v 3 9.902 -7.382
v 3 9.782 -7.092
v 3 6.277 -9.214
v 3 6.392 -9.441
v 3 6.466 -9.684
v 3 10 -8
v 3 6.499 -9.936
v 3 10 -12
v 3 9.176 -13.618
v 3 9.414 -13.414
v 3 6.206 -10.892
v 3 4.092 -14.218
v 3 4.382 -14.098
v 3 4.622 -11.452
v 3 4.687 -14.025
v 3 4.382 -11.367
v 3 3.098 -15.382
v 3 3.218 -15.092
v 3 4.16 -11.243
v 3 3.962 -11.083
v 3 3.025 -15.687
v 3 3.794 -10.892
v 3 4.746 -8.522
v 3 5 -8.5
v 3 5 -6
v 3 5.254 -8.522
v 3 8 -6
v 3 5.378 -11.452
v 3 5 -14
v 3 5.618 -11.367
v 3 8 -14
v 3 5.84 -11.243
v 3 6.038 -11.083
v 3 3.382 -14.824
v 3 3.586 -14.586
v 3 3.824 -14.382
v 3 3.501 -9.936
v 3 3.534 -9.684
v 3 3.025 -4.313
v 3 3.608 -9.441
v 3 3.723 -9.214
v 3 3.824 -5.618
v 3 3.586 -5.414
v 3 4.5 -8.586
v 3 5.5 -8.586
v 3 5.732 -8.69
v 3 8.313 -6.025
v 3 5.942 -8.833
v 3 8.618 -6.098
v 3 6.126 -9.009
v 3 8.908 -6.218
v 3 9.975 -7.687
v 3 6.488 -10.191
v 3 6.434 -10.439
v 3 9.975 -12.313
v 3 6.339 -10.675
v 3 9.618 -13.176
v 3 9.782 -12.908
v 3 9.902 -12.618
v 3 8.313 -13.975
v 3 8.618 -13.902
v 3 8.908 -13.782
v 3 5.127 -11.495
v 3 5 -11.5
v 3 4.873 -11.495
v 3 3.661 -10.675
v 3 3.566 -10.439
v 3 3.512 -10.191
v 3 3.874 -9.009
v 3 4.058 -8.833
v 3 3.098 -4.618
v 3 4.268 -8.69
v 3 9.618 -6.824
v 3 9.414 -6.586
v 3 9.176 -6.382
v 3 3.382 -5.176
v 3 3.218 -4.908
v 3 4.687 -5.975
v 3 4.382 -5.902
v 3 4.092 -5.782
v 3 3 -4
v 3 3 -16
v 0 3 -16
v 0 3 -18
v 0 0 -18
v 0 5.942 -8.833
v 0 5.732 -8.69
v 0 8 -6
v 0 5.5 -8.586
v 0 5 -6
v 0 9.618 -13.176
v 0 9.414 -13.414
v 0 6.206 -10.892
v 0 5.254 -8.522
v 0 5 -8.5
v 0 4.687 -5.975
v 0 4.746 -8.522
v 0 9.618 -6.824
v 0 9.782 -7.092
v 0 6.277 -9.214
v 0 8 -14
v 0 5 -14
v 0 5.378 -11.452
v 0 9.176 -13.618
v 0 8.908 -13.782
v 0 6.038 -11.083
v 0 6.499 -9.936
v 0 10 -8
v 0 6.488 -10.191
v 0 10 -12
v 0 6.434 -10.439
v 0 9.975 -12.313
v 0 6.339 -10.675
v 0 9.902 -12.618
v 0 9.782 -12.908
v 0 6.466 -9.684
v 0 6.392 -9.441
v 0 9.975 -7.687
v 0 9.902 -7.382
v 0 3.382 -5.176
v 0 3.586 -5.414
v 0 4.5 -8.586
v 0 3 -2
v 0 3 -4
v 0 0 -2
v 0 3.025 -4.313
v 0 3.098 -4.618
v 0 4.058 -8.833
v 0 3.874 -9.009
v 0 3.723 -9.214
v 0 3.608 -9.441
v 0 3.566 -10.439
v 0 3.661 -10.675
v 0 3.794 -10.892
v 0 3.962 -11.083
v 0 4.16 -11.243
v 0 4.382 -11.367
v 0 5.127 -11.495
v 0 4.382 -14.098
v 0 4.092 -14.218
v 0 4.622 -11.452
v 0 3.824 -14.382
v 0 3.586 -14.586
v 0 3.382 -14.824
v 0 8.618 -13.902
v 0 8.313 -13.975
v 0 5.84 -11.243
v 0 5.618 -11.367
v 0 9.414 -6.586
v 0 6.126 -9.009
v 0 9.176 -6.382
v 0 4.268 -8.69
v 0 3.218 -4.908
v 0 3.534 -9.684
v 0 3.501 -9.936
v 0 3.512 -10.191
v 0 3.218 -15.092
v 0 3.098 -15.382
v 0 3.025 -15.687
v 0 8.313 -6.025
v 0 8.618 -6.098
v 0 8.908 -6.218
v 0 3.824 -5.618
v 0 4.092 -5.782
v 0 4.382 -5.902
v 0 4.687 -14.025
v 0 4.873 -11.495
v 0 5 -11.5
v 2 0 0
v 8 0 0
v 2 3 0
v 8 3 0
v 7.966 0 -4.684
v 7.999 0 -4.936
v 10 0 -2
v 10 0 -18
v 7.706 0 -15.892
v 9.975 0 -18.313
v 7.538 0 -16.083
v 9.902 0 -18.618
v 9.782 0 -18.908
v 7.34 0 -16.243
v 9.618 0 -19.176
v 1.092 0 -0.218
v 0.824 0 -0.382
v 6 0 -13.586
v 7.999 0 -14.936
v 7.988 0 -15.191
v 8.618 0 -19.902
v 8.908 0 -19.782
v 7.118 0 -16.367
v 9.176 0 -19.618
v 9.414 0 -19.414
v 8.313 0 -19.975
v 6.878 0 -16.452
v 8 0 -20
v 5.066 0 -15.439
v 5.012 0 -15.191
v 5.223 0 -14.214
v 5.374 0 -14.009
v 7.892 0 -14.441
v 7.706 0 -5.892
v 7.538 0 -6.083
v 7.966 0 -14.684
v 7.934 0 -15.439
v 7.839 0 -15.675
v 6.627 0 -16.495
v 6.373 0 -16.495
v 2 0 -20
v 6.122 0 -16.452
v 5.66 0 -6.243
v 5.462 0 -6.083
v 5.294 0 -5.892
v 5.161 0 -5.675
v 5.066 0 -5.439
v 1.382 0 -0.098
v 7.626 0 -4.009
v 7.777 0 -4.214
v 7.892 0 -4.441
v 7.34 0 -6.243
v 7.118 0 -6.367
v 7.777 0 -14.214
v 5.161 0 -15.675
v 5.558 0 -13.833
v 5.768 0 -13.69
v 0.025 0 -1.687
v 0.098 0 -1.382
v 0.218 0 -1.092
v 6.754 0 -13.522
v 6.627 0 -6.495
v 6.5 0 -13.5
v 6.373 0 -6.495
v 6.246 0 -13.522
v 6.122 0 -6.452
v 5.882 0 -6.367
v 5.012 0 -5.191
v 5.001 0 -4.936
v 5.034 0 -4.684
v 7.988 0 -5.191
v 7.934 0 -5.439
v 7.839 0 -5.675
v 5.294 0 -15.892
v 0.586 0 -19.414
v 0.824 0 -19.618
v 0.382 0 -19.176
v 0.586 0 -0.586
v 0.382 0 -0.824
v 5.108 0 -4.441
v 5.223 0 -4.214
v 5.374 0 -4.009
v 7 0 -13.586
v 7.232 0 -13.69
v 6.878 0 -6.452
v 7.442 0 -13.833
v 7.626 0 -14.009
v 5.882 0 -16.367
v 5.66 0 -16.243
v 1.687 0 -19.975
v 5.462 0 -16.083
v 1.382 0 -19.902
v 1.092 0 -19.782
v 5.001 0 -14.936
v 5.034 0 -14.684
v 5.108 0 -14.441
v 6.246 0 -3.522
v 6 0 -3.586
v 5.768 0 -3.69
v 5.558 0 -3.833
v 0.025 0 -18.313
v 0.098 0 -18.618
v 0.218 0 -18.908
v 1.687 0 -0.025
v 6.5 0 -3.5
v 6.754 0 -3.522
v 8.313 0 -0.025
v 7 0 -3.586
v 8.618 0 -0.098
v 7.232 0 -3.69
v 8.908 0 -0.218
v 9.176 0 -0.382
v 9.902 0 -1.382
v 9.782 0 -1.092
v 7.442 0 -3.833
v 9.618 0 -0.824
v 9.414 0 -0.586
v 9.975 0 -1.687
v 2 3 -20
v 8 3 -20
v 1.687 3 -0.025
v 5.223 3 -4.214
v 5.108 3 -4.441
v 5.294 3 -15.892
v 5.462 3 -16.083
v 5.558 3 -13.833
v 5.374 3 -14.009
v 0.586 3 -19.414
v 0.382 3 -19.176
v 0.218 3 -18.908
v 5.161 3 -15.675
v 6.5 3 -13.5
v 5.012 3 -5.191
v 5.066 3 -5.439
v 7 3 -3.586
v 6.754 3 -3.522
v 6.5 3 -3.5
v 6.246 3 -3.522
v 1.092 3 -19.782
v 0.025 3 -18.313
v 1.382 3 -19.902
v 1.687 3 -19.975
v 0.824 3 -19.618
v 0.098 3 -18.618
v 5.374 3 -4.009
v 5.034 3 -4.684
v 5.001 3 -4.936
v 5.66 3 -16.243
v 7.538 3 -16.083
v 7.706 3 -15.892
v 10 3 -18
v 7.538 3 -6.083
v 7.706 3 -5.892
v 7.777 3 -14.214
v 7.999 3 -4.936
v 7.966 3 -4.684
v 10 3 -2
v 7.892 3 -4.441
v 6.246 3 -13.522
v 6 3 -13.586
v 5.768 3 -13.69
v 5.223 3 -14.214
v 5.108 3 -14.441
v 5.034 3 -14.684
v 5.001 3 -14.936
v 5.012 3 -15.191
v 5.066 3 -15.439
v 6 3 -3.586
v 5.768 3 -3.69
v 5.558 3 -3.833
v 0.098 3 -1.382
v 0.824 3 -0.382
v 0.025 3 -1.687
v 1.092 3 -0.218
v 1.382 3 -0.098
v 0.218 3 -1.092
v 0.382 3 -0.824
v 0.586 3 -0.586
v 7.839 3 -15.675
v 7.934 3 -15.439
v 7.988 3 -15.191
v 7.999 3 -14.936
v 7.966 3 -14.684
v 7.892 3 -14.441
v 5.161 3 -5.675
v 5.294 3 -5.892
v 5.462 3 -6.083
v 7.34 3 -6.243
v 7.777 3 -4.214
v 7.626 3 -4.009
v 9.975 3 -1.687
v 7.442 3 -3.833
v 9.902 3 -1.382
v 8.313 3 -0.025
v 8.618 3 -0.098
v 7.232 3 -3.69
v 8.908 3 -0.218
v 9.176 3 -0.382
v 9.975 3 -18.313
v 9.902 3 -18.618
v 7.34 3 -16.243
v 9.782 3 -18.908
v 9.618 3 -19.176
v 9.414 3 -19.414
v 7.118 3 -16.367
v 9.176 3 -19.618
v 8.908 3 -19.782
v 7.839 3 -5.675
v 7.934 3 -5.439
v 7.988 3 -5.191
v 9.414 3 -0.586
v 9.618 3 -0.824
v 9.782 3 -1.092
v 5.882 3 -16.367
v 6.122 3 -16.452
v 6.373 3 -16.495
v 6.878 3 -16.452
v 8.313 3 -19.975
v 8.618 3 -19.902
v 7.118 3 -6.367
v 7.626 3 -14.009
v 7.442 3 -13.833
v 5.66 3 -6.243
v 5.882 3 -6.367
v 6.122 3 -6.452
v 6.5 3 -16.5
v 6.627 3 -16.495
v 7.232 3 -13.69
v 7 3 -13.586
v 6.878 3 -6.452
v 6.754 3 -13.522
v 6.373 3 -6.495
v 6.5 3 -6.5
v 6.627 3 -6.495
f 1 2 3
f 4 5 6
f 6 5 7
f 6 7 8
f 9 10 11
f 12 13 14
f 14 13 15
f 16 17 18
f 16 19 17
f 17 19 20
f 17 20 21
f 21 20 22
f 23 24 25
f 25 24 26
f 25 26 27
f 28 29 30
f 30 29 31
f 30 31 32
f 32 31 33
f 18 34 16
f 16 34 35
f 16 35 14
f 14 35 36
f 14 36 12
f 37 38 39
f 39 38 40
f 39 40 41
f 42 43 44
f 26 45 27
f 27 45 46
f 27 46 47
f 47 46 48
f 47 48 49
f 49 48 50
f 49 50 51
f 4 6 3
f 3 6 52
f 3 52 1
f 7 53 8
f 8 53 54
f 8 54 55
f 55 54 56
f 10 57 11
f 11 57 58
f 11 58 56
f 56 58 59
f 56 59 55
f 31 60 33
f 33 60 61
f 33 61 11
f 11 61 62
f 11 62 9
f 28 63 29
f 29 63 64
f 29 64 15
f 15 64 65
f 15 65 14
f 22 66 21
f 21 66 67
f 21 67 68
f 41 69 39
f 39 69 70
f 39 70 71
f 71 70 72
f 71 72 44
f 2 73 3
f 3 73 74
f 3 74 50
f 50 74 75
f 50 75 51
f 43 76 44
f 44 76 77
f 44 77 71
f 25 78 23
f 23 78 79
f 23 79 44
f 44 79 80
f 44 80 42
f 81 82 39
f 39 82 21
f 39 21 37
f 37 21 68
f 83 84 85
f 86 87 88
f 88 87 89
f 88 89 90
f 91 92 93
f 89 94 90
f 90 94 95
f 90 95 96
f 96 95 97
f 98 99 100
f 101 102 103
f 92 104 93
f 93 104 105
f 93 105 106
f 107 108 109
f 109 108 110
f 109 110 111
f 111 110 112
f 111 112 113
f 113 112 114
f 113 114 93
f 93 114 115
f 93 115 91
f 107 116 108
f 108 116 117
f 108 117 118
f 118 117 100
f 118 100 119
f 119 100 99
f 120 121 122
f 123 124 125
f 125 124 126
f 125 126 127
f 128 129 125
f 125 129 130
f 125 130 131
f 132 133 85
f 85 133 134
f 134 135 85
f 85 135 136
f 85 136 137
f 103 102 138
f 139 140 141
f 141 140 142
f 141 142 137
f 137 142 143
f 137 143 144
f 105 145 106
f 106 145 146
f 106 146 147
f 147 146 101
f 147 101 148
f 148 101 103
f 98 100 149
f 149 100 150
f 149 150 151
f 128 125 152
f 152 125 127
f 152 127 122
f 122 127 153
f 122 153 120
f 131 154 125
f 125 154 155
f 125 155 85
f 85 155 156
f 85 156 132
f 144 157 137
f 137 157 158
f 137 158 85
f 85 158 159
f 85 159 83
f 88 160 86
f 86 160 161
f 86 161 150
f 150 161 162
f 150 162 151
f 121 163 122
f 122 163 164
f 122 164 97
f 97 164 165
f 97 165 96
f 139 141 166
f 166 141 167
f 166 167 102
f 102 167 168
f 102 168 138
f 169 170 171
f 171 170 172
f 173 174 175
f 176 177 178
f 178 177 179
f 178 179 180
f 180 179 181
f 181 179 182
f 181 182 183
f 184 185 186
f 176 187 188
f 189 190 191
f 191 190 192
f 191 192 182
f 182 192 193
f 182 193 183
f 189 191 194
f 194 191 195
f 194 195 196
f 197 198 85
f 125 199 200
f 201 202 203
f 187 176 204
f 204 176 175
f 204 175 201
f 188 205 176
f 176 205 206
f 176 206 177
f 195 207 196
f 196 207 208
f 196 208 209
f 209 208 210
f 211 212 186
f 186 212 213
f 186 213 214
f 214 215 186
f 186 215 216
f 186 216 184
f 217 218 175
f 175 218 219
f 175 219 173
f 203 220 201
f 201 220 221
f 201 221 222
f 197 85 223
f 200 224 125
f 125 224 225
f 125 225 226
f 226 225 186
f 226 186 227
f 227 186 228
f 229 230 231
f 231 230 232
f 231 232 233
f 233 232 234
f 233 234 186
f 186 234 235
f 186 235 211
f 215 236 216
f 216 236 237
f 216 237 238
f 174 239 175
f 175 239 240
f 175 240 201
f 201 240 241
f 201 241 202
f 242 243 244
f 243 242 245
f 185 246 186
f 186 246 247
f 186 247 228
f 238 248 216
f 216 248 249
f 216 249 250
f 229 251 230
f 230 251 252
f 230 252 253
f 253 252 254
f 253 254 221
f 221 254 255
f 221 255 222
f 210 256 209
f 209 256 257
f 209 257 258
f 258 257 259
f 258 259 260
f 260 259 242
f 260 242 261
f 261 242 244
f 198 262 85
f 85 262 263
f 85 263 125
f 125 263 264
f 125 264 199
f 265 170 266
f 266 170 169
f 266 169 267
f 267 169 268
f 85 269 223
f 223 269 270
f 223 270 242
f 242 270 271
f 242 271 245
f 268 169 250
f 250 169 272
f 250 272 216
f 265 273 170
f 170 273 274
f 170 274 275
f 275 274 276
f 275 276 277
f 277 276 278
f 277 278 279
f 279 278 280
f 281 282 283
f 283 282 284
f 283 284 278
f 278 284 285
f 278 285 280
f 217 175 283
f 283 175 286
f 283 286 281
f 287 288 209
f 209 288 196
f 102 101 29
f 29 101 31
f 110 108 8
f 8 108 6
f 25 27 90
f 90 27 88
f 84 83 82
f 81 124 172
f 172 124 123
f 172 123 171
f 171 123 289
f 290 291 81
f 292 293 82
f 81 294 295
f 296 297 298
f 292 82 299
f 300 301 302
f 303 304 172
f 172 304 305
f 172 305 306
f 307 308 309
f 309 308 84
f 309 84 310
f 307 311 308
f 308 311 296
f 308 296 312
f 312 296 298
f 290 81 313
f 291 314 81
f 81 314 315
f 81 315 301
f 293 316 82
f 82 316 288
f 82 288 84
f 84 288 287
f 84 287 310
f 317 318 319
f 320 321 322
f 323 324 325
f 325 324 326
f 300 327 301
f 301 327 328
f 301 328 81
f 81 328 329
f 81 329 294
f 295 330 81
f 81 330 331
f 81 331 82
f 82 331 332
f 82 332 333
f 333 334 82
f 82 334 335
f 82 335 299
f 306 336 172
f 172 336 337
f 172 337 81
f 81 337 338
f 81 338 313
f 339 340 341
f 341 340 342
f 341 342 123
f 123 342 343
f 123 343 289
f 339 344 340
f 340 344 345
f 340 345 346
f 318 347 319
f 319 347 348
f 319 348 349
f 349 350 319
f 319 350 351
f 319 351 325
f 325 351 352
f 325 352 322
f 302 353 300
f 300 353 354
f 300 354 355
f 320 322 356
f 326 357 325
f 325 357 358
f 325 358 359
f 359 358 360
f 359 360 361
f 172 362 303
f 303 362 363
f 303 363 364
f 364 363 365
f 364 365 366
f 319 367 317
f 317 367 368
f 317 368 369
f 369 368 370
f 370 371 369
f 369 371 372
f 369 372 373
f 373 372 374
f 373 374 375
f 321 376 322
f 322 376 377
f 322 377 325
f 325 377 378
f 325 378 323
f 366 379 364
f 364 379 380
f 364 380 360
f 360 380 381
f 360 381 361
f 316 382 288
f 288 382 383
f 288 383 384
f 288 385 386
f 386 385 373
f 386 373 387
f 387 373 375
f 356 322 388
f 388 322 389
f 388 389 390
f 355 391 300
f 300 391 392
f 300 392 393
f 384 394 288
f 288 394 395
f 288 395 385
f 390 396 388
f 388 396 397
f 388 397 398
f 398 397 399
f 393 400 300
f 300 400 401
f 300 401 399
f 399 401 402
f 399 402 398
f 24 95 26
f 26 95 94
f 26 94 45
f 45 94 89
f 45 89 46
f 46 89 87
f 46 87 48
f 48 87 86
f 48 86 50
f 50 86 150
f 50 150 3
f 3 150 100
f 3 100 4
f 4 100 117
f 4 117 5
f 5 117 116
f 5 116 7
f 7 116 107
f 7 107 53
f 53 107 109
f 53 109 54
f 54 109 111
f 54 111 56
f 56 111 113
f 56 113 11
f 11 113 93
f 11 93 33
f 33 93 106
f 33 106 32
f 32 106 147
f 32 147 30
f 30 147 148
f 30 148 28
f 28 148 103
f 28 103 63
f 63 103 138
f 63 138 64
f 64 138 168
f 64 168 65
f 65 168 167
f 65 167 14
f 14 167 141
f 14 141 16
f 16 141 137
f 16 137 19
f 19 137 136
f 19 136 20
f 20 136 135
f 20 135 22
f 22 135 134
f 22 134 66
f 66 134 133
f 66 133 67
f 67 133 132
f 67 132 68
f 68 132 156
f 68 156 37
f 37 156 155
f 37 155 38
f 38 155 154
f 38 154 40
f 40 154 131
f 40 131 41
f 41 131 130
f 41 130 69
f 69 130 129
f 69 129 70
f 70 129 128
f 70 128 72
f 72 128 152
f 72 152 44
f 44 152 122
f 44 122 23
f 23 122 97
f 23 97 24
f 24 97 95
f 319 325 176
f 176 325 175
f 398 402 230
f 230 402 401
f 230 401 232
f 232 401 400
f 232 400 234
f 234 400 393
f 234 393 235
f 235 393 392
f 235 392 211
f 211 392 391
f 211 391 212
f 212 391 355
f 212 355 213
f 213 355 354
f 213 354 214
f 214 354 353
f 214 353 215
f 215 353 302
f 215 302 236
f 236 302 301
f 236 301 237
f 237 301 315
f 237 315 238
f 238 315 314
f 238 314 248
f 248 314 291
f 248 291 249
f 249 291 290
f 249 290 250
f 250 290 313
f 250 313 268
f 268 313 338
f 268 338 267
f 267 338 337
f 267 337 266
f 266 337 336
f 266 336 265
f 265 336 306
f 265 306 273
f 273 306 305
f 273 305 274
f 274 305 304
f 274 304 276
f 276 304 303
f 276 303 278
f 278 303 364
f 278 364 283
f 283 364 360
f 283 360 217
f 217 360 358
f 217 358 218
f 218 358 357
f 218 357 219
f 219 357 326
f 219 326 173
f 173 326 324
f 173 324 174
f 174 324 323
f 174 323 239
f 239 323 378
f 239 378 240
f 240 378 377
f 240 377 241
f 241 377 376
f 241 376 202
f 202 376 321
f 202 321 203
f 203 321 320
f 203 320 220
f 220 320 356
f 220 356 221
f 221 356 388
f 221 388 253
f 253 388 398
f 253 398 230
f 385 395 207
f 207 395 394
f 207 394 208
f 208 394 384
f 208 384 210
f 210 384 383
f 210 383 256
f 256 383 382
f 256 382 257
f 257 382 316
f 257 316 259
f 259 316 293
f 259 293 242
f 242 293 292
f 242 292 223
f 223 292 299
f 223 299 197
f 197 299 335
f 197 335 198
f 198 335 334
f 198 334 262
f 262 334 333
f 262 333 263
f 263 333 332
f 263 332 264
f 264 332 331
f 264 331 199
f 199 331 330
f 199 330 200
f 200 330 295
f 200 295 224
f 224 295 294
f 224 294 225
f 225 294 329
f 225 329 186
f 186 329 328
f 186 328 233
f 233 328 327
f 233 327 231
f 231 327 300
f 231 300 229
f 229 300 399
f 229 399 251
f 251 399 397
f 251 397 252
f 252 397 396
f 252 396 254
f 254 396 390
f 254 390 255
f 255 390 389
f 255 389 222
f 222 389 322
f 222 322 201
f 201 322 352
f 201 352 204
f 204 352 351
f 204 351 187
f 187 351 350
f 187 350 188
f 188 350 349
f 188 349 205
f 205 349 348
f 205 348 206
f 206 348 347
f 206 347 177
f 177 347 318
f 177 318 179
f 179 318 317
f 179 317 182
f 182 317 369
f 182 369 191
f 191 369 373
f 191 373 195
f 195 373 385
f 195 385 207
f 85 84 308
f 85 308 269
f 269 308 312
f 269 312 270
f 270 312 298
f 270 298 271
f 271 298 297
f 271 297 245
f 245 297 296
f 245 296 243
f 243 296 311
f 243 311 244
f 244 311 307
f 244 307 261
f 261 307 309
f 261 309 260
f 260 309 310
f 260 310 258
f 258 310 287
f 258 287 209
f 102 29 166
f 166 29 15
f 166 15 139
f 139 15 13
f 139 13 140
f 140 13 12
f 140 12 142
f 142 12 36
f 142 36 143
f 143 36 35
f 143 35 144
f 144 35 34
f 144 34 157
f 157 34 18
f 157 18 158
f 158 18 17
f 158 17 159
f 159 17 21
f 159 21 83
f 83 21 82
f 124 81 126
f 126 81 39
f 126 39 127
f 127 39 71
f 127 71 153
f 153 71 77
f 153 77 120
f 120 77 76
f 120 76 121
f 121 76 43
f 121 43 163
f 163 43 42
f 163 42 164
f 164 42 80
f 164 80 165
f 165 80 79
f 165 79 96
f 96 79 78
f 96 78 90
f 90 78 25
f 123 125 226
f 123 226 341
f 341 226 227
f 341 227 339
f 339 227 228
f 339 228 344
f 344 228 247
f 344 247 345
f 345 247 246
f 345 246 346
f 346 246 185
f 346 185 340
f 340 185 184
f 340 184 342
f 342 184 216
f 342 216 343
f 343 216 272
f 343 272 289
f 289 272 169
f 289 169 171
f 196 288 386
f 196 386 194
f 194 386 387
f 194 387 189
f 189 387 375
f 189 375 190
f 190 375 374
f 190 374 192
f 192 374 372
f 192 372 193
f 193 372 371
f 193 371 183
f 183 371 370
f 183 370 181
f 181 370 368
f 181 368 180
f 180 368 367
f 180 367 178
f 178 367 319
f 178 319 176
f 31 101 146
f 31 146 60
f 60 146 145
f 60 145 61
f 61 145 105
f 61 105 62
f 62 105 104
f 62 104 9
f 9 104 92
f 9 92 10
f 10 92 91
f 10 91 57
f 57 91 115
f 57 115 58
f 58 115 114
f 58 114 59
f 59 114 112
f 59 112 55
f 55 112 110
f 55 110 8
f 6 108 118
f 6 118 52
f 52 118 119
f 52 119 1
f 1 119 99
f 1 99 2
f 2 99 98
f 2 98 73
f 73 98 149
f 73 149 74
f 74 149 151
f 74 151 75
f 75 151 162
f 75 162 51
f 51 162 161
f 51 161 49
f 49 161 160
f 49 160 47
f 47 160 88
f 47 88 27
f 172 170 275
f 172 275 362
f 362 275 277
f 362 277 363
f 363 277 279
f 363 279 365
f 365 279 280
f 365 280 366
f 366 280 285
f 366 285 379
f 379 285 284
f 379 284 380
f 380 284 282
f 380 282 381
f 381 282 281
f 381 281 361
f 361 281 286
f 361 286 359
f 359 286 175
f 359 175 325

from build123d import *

# Parameters (mm, degrees)
SKETCH1_R           = 1.5
BOSS_EXTRUDE1_DEPTH = 3
SKETCH2_W           = 20
SKETCH2_H           = 3
BOSS_EXTRUDE2_DEPTH = 7
SKETCH3_R           = 1.5
CUT_EXTRUDE1_DEPTH  = 12.5
FILLET1_R           = 2


with BuildPart() as part:
    # Sketch1 → Boss-Extrude1 (new body)
    with BuildSketch(Plane(origin=(0, 0, 0), x_dir=(0, 0, -1), z_dir=(1, 0, 0))):
        Polygon((14, 10), (14, 3), (20, 3), (20, 0), (0, 0), (0, 3), (6, 3), (6, 10), align=None)
        with Locations((10, 5)):
            Circle(SKETCH1_R, mode=Mode.SUBTRACT)
    extrude(amount=BOSS_EXTRUDE1_DEPTH)

    # Sketch2 → Boss-Extrude2 (add)
    with BuildSketch(Plane(origin=(3, 0, 0), x_dir=(0, 0, -1), z_dir=(1, 0, 0))):
        with Locations((10, 1.5)):
            Rectangle(SKETCH2_W, SKETCH2_H)
    extrude(amount=BOSS_EXTRUDE2_DEPTH)

    # Sketch3 → Cut-Extrude1 (cut, symmetric)
    with BuildSketch(Plane(origin=(0, 3, 0), x_dir=(1, 0, 0), z_dir=(0, 1, 0))):
        with Locations(Location((6.5, 15, 0), (0, 0, 270))):
            Circle(SKETCH3_R)
        with Locations(Location((6.5, 5, 0), (0, 0, 270))):
            Circle(SKETCH3_R)
    extrude(amount=CUT_EXTRUDE1_DEPTH, both=True, mode=Mode.SUBTRACT)

    # Fillet1
    fillet1_edges = [part.edges().sort_by_distance(p)[0] for p in [
        (0, 1.5, -20),
        (0, 1.5, 0),
        (1.5, 3, -6),
        (1.5, 10, -6),
        (1.5, 10, -14),
        (1.5, 3, -14),
        (10, 1.5, 0),
        (10, 1.5, -20),
    ]]
    fillet(fillet1_edges, radius=FILLET1_R)


solid = part.part
